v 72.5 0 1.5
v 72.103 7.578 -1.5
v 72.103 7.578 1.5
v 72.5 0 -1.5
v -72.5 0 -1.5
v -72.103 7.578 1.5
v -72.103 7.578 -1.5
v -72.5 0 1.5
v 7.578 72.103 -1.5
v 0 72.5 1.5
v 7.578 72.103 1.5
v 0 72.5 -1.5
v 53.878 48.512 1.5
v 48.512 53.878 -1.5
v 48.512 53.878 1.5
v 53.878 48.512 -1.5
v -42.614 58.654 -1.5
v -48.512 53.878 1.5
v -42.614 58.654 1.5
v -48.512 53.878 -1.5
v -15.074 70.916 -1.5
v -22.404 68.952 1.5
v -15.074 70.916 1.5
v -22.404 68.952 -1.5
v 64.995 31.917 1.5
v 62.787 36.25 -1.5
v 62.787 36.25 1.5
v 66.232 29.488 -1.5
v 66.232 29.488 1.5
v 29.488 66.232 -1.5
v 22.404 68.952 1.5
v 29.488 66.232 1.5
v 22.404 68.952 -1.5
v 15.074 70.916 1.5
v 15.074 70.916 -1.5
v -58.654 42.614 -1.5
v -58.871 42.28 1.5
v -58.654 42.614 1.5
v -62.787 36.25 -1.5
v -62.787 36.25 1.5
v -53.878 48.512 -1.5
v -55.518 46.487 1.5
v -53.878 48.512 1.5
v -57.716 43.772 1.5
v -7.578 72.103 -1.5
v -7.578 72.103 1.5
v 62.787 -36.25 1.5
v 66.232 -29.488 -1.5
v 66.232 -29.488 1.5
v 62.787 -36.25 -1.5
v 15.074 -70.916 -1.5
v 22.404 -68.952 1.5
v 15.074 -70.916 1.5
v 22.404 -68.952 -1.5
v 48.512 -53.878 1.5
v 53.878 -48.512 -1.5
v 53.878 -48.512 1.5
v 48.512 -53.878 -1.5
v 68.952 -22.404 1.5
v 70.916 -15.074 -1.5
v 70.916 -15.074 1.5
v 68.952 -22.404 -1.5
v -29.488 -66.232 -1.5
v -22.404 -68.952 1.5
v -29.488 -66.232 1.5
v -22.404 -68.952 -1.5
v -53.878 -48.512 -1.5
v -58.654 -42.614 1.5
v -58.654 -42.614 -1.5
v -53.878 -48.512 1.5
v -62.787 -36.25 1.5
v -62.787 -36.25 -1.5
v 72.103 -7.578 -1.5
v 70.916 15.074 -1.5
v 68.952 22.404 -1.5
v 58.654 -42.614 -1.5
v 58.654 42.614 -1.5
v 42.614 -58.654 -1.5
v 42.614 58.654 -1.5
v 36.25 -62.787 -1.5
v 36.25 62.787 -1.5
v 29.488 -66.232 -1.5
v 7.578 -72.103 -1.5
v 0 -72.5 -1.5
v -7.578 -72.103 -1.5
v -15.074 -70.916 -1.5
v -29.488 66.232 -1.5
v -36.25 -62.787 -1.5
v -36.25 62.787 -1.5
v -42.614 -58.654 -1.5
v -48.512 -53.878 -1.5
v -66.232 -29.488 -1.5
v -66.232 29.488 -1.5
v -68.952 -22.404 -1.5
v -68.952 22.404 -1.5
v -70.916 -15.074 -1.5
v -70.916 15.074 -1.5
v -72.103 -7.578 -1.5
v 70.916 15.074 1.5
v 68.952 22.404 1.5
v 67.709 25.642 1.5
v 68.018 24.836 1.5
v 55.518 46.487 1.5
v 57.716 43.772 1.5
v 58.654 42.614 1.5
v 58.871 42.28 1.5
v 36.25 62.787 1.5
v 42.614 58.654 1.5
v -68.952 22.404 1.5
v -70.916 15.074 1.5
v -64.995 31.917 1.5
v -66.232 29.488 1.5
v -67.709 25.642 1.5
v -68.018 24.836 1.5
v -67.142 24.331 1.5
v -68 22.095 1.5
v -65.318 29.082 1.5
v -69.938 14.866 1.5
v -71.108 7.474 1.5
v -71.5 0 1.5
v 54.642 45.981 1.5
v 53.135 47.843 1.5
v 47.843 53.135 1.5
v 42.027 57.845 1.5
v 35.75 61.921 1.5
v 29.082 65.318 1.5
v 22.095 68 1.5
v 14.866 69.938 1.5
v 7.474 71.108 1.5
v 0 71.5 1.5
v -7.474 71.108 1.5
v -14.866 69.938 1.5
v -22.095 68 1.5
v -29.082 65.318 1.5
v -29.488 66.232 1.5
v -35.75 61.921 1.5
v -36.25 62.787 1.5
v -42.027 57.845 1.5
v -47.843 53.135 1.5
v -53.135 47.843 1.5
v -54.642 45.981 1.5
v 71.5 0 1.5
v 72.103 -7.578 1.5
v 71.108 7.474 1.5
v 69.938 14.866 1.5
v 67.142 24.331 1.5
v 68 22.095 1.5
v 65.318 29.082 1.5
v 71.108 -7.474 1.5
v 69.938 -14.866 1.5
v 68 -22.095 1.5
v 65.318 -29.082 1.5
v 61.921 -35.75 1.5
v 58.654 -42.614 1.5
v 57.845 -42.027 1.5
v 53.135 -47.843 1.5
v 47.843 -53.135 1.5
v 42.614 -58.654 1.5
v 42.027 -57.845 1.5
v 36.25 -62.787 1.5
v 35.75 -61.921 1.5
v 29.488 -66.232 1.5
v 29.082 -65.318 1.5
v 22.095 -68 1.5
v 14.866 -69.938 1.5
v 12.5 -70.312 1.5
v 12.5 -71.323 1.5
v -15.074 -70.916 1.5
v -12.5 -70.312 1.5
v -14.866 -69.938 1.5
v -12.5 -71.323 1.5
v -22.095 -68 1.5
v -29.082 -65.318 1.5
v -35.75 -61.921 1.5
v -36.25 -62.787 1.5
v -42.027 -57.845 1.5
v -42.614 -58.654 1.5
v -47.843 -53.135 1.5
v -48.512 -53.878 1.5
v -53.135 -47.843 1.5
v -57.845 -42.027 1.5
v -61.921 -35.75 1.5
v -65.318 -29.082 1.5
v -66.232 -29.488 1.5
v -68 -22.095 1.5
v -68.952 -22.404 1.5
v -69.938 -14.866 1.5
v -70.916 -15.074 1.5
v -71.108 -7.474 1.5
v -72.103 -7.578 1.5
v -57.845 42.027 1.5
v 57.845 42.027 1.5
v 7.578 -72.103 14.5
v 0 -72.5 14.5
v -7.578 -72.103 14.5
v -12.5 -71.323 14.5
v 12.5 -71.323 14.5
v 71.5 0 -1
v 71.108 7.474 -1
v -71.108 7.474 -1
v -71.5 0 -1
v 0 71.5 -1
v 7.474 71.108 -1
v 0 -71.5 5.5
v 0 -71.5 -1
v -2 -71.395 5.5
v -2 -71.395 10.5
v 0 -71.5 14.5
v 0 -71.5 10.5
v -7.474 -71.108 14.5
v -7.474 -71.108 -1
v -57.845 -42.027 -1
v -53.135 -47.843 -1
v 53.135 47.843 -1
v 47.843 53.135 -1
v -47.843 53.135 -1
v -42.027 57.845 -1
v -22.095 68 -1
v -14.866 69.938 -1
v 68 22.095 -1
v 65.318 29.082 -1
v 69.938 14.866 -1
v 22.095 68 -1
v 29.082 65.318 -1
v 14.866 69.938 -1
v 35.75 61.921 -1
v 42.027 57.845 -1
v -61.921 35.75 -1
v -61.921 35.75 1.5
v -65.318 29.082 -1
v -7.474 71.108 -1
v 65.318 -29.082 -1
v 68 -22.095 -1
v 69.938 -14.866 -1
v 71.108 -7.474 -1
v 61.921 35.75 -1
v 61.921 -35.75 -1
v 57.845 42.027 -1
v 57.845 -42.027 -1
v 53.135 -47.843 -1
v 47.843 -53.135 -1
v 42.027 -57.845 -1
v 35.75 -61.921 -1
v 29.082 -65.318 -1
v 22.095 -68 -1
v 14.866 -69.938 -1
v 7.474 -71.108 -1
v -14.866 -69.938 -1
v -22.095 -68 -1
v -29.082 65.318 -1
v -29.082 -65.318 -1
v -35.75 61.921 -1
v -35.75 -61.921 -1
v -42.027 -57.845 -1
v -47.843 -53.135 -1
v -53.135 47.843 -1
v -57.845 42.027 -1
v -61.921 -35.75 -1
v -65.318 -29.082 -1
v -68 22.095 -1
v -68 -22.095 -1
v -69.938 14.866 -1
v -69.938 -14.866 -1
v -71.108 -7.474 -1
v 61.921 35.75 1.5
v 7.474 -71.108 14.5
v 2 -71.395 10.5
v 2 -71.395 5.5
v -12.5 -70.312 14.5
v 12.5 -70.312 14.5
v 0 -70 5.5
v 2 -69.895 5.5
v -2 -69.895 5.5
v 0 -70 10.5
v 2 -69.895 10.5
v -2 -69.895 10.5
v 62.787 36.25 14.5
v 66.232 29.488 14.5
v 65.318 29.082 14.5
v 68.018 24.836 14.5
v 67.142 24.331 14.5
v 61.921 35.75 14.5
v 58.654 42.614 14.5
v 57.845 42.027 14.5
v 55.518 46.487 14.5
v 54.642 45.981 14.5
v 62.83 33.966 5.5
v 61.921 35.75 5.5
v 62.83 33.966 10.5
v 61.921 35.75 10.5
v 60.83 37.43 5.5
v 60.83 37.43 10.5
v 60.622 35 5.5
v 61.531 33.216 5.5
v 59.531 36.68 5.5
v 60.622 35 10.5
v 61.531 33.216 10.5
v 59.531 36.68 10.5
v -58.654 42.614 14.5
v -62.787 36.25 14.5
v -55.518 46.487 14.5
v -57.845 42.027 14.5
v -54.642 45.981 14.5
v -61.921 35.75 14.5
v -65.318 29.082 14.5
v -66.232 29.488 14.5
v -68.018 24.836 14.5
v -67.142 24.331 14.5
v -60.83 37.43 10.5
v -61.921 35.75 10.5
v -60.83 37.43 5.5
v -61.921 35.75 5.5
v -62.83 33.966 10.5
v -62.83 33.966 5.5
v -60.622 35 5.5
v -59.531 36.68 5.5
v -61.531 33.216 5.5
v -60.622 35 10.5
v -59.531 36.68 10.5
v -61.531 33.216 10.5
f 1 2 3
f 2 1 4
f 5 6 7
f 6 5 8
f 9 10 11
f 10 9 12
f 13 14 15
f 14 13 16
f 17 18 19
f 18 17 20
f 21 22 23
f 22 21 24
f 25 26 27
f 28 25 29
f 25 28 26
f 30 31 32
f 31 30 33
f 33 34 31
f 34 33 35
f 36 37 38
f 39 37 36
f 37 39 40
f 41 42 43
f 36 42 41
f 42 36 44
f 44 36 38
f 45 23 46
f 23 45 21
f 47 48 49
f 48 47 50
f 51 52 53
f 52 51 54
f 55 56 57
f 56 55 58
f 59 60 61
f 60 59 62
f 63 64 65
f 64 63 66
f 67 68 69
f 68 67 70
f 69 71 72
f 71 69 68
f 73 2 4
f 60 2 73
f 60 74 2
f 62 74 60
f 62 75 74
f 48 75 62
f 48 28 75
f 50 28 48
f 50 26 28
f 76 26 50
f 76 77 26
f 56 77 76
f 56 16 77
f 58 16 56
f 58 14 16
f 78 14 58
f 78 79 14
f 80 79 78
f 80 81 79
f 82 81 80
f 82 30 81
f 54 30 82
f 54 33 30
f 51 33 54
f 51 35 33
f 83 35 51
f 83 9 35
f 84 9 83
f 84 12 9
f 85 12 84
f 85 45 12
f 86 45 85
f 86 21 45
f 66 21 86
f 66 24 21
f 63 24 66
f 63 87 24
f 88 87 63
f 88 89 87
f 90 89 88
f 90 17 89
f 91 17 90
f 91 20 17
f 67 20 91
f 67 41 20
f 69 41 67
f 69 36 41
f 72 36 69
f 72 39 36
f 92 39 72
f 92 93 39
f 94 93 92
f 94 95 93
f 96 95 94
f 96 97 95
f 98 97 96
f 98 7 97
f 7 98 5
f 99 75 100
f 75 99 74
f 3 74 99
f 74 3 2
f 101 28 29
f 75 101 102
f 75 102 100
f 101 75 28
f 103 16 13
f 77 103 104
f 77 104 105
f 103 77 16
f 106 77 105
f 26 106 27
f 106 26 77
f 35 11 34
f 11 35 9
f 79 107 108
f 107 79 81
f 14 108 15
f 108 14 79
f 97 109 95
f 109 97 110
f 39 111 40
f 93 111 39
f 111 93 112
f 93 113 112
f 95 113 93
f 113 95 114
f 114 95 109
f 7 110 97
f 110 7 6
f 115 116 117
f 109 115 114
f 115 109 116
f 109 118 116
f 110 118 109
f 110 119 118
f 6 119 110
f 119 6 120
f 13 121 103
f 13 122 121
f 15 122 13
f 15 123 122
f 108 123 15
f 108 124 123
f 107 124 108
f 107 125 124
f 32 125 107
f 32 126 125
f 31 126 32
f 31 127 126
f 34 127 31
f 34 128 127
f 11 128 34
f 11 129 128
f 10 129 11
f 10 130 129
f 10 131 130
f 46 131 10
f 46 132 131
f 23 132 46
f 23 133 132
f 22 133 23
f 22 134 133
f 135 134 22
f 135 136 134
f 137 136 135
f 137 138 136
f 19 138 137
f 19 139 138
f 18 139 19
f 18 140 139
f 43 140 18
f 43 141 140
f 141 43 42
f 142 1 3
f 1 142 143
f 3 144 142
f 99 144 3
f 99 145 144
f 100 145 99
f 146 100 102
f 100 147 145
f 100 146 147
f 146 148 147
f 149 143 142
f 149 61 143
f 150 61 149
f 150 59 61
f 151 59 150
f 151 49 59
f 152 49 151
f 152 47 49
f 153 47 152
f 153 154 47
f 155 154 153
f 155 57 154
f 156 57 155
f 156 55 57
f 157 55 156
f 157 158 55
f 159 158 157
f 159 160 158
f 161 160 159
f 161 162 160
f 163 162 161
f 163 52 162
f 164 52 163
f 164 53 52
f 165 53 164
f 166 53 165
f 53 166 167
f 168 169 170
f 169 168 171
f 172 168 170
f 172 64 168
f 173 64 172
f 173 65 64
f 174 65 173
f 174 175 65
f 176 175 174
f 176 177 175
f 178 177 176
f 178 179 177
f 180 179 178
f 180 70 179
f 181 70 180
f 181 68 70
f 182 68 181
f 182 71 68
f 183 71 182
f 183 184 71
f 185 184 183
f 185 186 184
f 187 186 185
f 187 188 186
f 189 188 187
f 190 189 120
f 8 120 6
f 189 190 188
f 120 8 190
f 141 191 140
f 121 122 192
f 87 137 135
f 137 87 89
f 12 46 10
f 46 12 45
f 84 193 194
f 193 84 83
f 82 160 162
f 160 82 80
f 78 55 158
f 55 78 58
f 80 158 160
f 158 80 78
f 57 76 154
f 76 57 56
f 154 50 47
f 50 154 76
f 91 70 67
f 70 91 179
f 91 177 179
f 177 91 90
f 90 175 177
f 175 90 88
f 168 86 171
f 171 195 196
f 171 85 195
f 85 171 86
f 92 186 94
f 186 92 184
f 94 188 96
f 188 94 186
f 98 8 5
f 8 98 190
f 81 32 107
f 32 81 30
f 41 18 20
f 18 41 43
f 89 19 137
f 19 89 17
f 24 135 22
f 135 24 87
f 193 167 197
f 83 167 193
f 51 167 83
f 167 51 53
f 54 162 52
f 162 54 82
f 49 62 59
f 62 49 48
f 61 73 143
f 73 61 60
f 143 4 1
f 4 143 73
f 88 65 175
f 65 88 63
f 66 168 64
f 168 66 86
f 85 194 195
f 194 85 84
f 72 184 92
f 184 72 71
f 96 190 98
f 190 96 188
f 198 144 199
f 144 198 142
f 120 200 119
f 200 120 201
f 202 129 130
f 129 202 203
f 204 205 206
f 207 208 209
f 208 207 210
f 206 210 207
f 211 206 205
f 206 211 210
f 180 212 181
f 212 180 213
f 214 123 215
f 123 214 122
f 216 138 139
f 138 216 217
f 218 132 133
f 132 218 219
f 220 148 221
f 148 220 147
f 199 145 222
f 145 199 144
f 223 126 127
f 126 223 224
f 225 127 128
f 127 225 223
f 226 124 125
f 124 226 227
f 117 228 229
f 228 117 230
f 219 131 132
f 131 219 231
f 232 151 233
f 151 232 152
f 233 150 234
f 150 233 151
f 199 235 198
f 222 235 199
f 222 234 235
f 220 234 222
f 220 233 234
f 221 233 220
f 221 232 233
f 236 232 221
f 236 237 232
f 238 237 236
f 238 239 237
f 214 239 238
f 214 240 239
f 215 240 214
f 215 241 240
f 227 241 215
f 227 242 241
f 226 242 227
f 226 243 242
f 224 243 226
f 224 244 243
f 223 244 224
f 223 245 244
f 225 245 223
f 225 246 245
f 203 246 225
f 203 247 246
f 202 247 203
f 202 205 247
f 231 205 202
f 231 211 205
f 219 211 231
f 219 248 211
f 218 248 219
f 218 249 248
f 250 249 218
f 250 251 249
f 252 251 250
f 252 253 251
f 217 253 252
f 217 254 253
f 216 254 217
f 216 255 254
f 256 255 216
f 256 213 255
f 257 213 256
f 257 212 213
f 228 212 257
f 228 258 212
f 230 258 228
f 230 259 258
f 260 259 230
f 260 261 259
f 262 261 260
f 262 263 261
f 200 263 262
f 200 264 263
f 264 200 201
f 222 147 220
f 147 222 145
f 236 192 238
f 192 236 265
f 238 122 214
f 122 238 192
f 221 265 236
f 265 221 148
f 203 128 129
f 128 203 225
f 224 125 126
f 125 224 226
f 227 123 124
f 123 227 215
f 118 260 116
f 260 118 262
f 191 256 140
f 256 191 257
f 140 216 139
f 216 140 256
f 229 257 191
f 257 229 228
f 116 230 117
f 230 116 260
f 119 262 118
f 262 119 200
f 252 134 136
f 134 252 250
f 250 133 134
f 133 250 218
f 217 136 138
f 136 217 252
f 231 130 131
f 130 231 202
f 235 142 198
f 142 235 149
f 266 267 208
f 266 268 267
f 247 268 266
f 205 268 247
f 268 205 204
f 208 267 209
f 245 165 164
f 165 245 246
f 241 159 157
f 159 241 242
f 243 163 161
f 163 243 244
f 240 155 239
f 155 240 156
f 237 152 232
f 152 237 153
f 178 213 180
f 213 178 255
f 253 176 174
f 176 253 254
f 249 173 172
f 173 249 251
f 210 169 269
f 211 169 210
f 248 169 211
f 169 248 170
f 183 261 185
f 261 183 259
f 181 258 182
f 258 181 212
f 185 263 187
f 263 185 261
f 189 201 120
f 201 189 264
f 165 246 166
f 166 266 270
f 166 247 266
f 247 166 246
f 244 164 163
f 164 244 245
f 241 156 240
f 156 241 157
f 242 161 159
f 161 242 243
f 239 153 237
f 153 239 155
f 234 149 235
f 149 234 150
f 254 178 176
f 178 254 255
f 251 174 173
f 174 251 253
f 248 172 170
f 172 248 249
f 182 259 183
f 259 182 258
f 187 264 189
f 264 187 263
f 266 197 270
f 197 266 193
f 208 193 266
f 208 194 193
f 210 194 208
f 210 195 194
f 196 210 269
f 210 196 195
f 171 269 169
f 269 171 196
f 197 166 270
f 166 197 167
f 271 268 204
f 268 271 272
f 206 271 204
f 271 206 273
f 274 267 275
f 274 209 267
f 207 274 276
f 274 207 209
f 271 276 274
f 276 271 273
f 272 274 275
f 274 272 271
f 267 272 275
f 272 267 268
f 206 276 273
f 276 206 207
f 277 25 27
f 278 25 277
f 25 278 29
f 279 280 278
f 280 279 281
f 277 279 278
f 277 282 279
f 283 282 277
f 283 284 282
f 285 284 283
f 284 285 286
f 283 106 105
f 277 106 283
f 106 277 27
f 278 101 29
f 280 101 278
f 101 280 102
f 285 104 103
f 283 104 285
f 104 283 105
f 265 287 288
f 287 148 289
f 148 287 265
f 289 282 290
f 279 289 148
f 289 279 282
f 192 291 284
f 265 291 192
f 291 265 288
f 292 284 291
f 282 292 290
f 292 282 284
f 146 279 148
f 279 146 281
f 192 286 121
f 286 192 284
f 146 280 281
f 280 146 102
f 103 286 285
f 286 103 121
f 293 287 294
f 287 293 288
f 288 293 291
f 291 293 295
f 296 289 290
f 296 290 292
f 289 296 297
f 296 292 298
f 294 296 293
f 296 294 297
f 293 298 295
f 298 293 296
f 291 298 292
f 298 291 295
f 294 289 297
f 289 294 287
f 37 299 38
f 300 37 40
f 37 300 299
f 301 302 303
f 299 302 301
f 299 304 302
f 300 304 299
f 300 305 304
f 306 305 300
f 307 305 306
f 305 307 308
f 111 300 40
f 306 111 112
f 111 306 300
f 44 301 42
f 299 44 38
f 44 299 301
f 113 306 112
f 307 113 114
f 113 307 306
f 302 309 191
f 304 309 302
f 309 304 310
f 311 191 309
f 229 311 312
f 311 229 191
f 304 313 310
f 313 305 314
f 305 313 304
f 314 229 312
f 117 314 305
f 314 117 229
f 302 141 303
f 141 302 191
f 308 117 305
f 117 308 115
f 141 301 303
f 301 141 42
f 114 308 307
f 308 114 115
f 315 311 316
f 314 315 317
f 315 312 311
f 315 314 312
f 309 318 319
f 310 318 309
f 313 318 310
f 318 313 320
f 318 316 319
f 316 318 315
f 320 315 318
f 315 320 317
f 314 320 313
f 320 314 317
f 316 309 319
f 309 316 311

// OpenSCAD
// Verschlussdeckel

D = 145;
Dd = 0.5;
r = 1;
deckel = true;
halter = false;

if (deckel) deckel();
if (halter) halter();
    

module deckel() {
    $fn = 60;
    difference() {
        cylinder(d=D, h=3, center=true);
        translate([0,0,Dd])
        cylinder(d=D-2*r, h=3, center=true);
    }
    
    halter();
    rotate([0,0,120])
    halter();
    rotate([0,0,-120])
    halter();

}

module halter() {
    $fn = 60;
    difference() {
        translate([0,0,Dd+7.5])
        cylinder(d=D, h = 13, center = true);
        translate([0,0,2*Dd+7.5])
        cylinder(d=D-2*r, h = 17, center = true);
        translate([0,D/2,2*Dd+7.5])
        cube([D,D,15], center=true);
        translate([-D/2-12.5,0,2*Dd+7.5])
        cube([D,D,25], center=true);
        translate([D/2+12.5,0,2*Dd+7.5])
        cube([D,D,25], center=true);
    }
    
    nase();
}

module nase() {
    $fn = 60;
    difference() {
        translate([0,0,Dd+7.5])
        cylinder(d=D-2, h = 5, center = true);
        translate([0,0,2*Dd+7.5])
        cylinder(d=D-3-2*r, h = 10, center = true);

        translate([D/2+2,0,Dd+7.5])
        cube([D,D,15], center = true);
        translate([-D/2-2,0,Dd+7.5])
        cube([D,D,15], center = true);
        translate([0,D/2,Dd+7.5])
        cube([D,D,15], center = true);        
    }
    
}
